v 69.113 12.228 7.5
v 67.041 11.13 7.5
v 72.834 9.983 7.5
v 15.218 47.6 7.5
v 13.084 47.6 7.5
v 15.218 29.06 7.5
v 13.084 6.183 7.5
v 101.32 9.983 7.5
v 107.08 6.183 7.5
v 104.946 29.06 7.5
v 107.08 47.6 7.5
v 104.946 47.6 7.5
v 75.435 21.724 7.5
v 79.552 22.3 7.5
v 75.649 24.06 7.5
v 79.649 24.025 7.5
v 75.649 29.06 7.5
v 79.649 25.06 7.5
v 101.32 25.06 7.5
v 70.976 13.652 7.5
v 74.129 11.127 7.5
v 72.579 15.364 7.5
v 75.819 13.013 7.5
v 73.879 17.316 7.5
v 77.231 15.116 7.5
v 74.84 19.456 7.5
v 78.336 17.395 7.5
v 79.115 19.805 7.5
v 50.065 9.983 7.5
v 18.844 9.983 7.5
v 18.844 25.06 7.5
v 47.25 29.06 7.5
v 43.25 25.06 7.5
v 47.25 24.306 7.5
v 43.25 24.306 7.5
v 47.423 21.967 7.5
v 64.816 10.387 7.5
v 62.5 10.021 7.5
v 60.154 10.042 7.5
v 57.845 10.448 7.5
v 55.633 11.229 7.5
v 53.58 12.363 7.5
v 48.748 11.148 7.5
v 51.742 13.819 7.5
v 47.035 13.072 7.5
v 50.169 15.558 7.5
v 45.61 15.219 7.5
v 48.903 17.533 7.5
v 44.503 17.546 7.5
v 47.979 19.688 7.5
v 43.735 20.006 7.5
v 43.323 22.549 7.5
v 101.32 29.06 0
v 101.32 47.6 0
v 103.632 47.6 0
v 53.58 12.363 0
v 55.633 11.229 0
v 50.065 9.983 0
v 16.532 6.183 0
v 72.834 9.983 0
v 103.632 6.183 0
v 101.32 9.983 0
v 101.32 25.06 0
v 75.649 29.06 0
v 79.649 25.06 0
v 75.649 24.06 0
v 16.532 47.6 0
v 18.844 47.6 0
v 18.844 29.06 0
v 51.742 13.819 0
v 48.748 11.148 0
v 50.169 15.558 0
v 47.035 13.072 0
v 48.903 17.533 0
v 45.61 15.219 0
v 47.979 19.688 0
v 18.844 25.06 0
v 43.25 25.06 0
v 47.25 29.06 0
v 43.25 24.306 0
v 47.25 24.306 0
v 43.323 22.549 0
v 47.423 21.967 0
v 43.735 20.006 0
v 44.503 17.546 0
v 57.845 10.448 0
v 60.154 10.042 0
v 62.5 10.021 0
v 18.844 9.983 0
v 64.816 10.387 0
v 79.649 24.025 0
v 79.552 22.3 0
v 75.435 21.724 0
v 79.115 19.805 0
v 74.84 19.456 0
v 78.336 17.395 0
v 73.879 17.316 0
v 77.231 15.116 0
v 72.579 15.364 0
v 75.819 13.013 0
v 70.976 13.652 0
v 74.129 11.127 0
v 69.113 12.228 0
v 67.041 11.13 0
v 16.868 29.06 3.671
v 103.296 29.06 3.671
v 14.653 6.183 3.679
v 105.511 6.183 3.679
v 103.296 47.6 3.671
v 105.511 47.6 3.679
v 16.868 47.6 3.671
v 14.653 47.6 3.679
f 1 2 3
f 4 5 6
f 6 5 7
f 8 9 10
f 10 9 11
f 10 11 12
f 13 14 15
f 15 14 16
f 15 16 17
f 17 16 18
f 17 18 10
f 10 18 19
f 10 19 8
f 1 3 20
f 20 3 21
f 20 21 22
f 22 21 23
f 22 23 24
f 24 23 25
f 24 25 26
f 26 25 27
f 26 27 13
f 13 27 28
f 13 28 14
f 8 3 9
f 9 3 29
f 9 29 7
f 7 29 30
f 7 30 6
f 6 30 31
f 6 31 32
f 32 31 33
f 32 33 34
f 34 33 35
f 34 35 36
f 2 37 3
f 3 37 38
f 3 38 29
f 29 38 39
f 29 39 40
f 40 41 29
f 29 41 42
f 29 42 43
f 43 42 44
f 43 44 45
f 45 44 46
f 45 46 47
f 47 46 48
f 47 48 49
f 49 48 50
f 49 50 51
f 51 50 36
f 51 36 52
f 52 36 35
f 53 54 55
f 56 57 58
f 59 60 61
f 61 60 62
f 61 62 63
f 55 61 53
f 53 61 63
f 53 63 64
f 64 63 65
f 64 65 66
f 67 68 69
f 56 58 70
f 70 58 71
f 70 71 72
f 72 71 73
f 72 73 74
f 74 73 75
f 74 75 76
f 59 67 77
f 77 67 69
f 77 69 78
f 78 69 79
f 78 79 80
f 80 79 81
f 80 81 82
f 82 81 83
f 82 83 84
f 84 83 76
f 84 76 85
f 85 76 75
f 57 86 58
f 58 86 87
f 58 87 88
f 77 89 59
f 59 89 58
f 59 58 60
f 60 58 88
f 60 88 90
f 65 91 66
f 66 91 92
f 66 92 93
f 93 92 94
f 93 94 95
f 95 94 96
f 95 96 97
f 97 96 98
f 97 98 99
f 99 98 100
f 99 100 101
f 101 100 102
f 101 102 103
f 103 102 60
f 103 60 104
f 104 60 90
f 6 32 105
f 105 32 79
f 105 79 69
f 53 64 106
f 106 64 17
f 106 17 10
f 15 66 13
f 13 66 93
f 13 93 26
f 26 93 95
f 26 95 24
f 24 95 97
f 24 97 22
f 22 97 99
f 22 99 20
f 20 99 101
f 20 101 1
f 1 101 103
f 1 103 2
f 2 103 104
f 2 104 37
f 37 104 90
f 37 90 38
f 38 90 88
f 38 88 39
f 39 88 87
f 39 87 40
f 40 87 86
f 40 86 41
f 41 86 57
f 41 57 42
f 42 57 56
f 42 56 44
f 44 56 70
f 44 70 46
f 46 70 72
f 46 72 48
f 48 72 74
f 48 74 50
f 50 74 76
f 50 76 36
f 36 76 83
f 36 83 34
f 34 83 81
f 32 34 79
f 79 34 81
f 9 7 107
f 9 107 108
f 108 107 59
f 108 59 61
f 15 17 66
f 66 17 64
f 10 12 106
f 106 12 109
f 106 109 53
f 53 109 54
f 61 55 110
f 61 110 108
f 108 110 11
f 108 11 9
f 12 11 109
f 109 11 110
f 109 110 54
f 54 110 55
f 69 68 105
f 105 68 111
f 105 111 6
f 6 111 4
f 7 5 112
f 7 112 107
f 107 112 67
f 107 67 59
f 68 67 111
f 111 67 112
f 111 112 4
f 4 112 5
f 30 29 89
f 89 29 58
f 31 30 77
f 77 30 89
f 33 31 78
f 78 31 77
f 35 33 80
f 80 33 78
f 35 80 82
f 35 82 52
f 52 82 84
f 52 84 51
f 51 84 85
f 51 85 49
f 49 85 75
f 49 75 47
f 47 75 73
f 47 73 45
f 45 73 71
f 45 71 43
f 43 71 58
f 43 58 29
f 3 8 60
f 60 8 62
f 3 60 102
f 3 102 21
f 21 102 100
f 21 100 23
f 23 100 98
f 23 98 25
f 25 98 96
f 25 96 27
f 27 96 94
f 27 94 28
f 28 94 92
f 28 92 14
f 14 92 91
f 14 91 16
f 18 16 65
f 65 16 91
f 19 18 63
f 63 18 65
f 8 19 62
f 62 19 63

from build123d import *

# Parameters (mm, degrees)
BOSS_EXTRUDE1_DEPTH      = 7.5
BOSS_EXTRUDE2_DEPTH      = 18.54
BOSS_EXTRUDE2_DEPTH_BACK = 22.877829
CUT_EXTRUDE2_START       = -22.877828503
CUT_EXTRUDE2_DEPTH       = 22.877828503
CUT_EXTRUDE1_DEPTH       = 7.5


with BuildPart() as part:
    # Sketch2 → Boss-Extrude1 (new body)
    with BuildSketch(Plane.XY):
        with BuildLine():
            Line((75.649019024, 29.060438862), (108.081997982, 29.060438862))
            Line((108.081997982, 29.060438862), (108.081997982, 6.182610359))
            Line((108.081997982, 6.182610359), (12.081997982, 6.182610359))
            Line((12.081997982, 6.182610359), (12.081997982, 29.060438862))
            Line((12.081997982, 29.060438862), (47.250085178, 29.060438862))
            Line((47.250085178, 29.060438862), (47.250085178, 24.305651432))
            ThreePointArc((47.250085178, 24.305651432), (61.326511028, 9.983143436), (75.649019024, 24.059569287))
            Line((75.649019024, 24.059569287), (75.649019024, 29.060438862))
        make_face()
    extrude(amount=BOSS_EXTRUDE1_DEPTH)

    # Sketch7 → Boss-Extrude2 (add, two sides: drawn at the far end of the back side and taken through both)
    with BuildSketch(Plane(origin=(0, 29.060438862, 0), x_dir=(1, 0, 0), z_dir=(0, 1, 0)).offset(-BOSS_EXTRUDE2_DEPTH_BACK)):
        with BuildLine():
            Line((101.320347636, 0), (103.631986296, 0))
            ThreePointArc((103.631986296, 0), (105.511041931, -3.678722762), (107.080019787, -7.5))
            Line((107.080019787, -7.5), (104.946394262, -7.5))
            ThreePointArc((104.946394262, -7.5), (103.296384641, -3.6711873), (101.320347636, 0))
        make_face()
        with BuildLine():
            Line((18.843648328, 0), (16.532009668, 0))
            ThreePointArc((16.532009668, 0), (14.652954033, -3.678722762), (13.083976177, -7.5))
            Line((13.083976177, -7.5), (15.217601702, -7.5))
            ThreePointArc((15.217601702, -7.5), (16.867611323, -3.6711873), (18.843648328, 0))
        make_face()
    extrude(amount=BOSS_EXTRUDE2_DEPTH + BOSS_EXTRUDE2_DEPTH_BACK)

    # Sketch9 → Cut-Extrude2 (cut)
    with BuildSketch(Plane(origin=(0, 29.060438862, 0), x_dir=(1, 0, 0), z_dir=(0, 1, 0)).offset(CUT_EXTRUDE2_START)):
        with BuildLine():
            Line((108.081997982, 0), (103.631986296, 0))
            ThreePointArc((103.631986296, 0), (105.511041931, -3.678722762), (107.080019787, -7.5))
            Line((107.080019787, -7.5), (108.081997982, -7.5))
            Line((108.081997982, -7.5), (108.081997982, 0))
        make_face()
        with BuildLine():
            Line((12.081997982, -7.5), (13.083976177, -7.5))
            ThreePointArc((13.083976177, -7.5), (14.652954033, -3.678722762), (16.532009668, 0))
            Line((16.532009668, 0), (12.081997982, 0))
            Line((12.081997982, 0), (12.081997982, -7.5))
        make_face()
    extrude(amount=CUT_EXTRUDE2_DEPTH, mode=Mode.SUBTRACT)

    # Sketch8 → Cut-Extrude1 (cut)
    with BuildSketch(Plane.XY.offset(7.5)):
        with BuildLine():
            Line((18.843648328, 25.060438862), (18.843648328, 9.983143436))
            Line((18.843648328, 9.983143436), (50.064839288, 9.983143436))
            add(Edge.make_bspline(
                [(50.064839288, 9.983143436), (45.21005588, 13.875585407), (43.215886983, 19.247270307), (43.250085178, 24.305651432)],
                knots=[0.673696083, 0.673696083, 0.673696083, 0.673696083, 1, 1, 1, 1], degree=3, weights=[0.560759297, 0.636257623, 0.782671191, 1]))
            Line((43.250085178, 24.305651432), (43.250085178, 25.060438862))
            Line((43.250085178, 25.060438862), (18.843648328, 25.060438862))
        make_face()
        with BuildLine():
            Line((101.320347636, 9.983143436), (101.320347636, 25.060438862))
            Line((101.320347636, 25.060438862), (79.649019024, 25.060438862))
            Line((79.649019024, 25.060438862), (79.648868861, 24.02490983))
            add(Edge.make_bspline(
                [(79.648868861, 24.02490983), (79.605779212, 19.052181459), (77.595427824, 13.800428938), (72.83438207, 9.983143436)],
                knots=[0, 0, 0, 0, 0.321967204, 0.321967204, 0.321967204, 0.321967204], degree=3, weights=[1, 0.78555958, 0.640161942, 0.563807087]))
            Line((72.83438207, 9.983143436), (101.320347636, 9.983143436))
        make_face()
    extrude(amount=-CUT_EXTRUDE1_DEPTH, mode=Mode.SUBTRACT)


solid = part.part
